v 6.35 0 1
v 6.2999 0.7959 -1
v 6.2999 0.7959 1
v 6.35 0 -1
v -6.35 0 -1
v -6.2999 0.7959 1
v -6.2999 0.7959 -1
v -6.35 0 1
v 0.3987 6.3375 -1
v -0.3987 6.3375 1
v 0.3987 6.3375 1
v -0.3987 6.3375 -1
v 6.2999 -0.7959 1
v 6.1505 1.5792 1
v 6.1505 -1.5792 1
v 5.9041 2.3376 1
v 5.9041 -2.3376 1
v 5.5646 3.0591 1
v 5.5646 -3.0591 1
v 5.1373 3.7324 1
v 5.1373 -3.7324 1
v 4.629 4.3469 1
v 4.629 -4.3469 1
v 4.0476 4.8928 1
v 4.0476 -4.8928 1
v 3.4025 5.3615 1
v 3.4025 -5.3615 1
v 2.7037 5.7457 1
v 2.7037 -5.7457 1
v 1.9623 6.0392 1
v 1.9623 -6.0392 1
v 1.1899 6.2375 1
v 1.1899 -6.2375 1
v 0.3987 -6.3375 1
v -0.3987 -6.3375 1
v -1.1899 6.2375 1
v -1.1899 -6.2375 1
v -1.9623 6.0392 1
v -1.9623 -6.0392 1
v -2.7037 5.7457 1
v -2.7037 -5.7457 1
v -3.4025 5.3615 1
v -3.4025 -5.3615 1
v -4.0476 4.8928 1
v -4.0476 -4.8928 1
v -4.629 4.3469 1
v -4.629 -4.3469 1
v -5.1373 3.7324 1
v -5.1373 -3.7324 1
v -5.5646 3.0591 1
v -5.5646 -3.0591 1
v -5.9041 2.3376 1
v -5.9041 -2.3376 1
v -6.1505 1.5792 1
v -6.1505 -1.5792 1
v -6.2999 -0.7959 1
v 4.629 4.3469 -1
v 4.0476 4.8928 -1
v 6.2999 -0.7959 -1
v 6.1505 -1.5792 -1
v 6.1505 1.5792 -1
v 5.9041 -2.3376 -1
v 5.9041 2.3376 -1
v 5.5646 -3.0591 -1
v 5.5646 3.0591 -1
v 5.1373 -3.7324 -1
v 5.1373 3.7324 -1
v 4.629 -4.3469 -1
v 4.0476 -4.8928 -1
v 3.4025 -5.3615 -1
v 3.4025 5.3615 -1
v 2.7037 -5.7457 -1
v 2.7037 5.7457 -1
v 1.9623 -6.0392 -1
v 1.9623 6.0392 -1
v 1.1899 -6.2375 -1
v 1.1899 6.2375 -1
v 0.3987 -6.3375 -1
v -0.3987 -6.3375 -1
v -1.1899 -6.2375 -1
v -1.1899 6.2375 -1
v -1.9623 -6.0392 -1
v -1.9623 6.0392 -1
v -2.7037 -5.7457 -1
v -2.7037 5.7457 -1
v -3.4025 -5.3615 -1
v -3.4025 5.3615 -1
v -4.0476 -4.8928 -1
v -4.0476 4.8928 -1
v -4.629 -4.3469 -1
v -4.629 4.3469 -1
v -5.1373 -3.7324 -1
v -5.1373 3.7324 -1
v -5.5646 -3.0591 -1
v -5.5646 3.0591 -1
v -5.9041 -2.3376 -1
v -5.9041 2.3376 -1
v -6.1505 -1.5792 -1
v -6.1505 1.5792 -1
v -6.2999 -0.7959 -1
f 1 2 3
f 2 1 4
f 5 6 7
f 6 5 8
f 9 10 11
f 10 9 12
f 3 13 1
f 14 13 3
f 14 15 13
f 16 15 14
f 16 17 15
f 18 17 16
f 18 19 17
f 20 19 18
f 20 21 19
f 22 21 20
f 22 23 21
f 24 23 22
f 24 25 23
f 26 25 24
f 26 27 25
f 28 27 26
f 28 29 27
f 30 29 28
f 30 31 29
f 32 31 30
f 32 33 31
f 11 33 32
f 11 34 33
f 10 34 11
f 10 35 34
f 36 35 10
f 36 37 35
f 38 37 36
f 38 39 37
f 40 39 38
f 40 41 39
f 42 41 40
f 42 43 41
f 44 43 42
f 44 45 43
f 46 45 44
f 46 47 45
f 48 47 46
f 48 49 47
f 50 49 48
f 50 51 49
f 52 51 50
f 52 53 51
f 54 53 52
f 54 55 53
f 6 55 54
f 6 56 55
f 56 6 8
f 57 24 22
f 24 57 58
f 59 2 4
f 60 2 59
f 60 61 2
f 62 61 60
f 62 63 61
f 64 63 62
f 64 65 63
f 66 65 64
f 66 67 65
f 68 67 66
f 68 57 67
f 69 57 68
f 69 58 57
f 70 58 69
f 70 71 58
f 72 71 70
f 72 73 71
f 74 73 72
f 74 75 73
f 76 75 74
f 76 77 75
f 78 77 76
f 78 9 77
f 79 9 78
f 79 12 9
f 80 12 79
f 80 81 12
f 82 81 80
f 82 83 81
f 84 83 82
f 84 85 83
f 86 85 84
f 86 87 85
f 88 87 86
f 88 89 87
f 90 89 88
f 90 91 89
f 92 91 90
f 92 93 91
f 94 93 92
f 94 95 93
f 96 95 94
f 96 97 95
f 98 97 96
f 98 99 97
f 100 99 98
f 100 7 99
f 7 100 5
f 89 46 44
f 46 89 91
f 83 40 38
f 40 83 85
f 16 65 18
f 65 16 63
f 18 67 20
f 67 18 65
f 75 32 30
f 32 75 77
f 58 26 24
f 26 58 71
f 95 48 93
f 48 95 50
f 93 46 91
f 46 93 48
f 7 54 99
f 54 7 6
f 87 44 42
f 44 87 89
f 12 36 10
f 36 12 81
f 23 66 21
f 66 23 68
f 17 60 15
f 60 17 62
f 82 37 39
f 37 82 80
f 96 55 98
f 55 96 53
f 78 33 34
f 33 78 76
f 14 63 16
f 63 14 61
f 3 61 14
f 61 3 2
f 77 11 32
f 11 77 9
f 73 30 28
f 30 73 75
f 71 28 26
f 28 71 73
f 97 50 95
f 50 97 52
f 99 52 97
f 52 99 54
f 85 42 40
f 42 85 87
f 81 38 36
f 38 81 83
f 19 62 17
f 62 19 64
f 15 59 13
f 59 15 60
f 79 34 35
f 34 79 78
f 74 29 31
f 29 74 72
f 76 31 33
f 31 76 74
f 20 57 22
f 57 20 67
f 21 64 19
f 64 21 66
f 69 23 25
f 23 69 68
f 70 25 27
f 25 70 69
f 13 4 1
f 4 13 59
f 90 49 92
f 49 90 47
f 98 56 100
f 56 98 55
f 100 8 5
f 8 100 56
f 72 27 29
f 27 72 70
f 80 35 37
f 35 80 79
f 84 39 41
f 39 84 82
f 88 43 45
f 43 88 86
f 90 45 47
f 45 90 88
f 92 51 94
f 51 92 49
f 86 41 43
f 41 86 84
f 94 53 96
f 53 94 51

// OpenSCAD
$fn = 50;


difference() {
	union() {
		translate(v = [0, 0, -1.0000000000]) {
			cylinder(h = 2, r = 6.3500000000);
		}
	}
	union() {
		translate(v = [0, 0, -100.0000000000]) {
			cylinder(h = 200, r = 0);
		}
	}
}
